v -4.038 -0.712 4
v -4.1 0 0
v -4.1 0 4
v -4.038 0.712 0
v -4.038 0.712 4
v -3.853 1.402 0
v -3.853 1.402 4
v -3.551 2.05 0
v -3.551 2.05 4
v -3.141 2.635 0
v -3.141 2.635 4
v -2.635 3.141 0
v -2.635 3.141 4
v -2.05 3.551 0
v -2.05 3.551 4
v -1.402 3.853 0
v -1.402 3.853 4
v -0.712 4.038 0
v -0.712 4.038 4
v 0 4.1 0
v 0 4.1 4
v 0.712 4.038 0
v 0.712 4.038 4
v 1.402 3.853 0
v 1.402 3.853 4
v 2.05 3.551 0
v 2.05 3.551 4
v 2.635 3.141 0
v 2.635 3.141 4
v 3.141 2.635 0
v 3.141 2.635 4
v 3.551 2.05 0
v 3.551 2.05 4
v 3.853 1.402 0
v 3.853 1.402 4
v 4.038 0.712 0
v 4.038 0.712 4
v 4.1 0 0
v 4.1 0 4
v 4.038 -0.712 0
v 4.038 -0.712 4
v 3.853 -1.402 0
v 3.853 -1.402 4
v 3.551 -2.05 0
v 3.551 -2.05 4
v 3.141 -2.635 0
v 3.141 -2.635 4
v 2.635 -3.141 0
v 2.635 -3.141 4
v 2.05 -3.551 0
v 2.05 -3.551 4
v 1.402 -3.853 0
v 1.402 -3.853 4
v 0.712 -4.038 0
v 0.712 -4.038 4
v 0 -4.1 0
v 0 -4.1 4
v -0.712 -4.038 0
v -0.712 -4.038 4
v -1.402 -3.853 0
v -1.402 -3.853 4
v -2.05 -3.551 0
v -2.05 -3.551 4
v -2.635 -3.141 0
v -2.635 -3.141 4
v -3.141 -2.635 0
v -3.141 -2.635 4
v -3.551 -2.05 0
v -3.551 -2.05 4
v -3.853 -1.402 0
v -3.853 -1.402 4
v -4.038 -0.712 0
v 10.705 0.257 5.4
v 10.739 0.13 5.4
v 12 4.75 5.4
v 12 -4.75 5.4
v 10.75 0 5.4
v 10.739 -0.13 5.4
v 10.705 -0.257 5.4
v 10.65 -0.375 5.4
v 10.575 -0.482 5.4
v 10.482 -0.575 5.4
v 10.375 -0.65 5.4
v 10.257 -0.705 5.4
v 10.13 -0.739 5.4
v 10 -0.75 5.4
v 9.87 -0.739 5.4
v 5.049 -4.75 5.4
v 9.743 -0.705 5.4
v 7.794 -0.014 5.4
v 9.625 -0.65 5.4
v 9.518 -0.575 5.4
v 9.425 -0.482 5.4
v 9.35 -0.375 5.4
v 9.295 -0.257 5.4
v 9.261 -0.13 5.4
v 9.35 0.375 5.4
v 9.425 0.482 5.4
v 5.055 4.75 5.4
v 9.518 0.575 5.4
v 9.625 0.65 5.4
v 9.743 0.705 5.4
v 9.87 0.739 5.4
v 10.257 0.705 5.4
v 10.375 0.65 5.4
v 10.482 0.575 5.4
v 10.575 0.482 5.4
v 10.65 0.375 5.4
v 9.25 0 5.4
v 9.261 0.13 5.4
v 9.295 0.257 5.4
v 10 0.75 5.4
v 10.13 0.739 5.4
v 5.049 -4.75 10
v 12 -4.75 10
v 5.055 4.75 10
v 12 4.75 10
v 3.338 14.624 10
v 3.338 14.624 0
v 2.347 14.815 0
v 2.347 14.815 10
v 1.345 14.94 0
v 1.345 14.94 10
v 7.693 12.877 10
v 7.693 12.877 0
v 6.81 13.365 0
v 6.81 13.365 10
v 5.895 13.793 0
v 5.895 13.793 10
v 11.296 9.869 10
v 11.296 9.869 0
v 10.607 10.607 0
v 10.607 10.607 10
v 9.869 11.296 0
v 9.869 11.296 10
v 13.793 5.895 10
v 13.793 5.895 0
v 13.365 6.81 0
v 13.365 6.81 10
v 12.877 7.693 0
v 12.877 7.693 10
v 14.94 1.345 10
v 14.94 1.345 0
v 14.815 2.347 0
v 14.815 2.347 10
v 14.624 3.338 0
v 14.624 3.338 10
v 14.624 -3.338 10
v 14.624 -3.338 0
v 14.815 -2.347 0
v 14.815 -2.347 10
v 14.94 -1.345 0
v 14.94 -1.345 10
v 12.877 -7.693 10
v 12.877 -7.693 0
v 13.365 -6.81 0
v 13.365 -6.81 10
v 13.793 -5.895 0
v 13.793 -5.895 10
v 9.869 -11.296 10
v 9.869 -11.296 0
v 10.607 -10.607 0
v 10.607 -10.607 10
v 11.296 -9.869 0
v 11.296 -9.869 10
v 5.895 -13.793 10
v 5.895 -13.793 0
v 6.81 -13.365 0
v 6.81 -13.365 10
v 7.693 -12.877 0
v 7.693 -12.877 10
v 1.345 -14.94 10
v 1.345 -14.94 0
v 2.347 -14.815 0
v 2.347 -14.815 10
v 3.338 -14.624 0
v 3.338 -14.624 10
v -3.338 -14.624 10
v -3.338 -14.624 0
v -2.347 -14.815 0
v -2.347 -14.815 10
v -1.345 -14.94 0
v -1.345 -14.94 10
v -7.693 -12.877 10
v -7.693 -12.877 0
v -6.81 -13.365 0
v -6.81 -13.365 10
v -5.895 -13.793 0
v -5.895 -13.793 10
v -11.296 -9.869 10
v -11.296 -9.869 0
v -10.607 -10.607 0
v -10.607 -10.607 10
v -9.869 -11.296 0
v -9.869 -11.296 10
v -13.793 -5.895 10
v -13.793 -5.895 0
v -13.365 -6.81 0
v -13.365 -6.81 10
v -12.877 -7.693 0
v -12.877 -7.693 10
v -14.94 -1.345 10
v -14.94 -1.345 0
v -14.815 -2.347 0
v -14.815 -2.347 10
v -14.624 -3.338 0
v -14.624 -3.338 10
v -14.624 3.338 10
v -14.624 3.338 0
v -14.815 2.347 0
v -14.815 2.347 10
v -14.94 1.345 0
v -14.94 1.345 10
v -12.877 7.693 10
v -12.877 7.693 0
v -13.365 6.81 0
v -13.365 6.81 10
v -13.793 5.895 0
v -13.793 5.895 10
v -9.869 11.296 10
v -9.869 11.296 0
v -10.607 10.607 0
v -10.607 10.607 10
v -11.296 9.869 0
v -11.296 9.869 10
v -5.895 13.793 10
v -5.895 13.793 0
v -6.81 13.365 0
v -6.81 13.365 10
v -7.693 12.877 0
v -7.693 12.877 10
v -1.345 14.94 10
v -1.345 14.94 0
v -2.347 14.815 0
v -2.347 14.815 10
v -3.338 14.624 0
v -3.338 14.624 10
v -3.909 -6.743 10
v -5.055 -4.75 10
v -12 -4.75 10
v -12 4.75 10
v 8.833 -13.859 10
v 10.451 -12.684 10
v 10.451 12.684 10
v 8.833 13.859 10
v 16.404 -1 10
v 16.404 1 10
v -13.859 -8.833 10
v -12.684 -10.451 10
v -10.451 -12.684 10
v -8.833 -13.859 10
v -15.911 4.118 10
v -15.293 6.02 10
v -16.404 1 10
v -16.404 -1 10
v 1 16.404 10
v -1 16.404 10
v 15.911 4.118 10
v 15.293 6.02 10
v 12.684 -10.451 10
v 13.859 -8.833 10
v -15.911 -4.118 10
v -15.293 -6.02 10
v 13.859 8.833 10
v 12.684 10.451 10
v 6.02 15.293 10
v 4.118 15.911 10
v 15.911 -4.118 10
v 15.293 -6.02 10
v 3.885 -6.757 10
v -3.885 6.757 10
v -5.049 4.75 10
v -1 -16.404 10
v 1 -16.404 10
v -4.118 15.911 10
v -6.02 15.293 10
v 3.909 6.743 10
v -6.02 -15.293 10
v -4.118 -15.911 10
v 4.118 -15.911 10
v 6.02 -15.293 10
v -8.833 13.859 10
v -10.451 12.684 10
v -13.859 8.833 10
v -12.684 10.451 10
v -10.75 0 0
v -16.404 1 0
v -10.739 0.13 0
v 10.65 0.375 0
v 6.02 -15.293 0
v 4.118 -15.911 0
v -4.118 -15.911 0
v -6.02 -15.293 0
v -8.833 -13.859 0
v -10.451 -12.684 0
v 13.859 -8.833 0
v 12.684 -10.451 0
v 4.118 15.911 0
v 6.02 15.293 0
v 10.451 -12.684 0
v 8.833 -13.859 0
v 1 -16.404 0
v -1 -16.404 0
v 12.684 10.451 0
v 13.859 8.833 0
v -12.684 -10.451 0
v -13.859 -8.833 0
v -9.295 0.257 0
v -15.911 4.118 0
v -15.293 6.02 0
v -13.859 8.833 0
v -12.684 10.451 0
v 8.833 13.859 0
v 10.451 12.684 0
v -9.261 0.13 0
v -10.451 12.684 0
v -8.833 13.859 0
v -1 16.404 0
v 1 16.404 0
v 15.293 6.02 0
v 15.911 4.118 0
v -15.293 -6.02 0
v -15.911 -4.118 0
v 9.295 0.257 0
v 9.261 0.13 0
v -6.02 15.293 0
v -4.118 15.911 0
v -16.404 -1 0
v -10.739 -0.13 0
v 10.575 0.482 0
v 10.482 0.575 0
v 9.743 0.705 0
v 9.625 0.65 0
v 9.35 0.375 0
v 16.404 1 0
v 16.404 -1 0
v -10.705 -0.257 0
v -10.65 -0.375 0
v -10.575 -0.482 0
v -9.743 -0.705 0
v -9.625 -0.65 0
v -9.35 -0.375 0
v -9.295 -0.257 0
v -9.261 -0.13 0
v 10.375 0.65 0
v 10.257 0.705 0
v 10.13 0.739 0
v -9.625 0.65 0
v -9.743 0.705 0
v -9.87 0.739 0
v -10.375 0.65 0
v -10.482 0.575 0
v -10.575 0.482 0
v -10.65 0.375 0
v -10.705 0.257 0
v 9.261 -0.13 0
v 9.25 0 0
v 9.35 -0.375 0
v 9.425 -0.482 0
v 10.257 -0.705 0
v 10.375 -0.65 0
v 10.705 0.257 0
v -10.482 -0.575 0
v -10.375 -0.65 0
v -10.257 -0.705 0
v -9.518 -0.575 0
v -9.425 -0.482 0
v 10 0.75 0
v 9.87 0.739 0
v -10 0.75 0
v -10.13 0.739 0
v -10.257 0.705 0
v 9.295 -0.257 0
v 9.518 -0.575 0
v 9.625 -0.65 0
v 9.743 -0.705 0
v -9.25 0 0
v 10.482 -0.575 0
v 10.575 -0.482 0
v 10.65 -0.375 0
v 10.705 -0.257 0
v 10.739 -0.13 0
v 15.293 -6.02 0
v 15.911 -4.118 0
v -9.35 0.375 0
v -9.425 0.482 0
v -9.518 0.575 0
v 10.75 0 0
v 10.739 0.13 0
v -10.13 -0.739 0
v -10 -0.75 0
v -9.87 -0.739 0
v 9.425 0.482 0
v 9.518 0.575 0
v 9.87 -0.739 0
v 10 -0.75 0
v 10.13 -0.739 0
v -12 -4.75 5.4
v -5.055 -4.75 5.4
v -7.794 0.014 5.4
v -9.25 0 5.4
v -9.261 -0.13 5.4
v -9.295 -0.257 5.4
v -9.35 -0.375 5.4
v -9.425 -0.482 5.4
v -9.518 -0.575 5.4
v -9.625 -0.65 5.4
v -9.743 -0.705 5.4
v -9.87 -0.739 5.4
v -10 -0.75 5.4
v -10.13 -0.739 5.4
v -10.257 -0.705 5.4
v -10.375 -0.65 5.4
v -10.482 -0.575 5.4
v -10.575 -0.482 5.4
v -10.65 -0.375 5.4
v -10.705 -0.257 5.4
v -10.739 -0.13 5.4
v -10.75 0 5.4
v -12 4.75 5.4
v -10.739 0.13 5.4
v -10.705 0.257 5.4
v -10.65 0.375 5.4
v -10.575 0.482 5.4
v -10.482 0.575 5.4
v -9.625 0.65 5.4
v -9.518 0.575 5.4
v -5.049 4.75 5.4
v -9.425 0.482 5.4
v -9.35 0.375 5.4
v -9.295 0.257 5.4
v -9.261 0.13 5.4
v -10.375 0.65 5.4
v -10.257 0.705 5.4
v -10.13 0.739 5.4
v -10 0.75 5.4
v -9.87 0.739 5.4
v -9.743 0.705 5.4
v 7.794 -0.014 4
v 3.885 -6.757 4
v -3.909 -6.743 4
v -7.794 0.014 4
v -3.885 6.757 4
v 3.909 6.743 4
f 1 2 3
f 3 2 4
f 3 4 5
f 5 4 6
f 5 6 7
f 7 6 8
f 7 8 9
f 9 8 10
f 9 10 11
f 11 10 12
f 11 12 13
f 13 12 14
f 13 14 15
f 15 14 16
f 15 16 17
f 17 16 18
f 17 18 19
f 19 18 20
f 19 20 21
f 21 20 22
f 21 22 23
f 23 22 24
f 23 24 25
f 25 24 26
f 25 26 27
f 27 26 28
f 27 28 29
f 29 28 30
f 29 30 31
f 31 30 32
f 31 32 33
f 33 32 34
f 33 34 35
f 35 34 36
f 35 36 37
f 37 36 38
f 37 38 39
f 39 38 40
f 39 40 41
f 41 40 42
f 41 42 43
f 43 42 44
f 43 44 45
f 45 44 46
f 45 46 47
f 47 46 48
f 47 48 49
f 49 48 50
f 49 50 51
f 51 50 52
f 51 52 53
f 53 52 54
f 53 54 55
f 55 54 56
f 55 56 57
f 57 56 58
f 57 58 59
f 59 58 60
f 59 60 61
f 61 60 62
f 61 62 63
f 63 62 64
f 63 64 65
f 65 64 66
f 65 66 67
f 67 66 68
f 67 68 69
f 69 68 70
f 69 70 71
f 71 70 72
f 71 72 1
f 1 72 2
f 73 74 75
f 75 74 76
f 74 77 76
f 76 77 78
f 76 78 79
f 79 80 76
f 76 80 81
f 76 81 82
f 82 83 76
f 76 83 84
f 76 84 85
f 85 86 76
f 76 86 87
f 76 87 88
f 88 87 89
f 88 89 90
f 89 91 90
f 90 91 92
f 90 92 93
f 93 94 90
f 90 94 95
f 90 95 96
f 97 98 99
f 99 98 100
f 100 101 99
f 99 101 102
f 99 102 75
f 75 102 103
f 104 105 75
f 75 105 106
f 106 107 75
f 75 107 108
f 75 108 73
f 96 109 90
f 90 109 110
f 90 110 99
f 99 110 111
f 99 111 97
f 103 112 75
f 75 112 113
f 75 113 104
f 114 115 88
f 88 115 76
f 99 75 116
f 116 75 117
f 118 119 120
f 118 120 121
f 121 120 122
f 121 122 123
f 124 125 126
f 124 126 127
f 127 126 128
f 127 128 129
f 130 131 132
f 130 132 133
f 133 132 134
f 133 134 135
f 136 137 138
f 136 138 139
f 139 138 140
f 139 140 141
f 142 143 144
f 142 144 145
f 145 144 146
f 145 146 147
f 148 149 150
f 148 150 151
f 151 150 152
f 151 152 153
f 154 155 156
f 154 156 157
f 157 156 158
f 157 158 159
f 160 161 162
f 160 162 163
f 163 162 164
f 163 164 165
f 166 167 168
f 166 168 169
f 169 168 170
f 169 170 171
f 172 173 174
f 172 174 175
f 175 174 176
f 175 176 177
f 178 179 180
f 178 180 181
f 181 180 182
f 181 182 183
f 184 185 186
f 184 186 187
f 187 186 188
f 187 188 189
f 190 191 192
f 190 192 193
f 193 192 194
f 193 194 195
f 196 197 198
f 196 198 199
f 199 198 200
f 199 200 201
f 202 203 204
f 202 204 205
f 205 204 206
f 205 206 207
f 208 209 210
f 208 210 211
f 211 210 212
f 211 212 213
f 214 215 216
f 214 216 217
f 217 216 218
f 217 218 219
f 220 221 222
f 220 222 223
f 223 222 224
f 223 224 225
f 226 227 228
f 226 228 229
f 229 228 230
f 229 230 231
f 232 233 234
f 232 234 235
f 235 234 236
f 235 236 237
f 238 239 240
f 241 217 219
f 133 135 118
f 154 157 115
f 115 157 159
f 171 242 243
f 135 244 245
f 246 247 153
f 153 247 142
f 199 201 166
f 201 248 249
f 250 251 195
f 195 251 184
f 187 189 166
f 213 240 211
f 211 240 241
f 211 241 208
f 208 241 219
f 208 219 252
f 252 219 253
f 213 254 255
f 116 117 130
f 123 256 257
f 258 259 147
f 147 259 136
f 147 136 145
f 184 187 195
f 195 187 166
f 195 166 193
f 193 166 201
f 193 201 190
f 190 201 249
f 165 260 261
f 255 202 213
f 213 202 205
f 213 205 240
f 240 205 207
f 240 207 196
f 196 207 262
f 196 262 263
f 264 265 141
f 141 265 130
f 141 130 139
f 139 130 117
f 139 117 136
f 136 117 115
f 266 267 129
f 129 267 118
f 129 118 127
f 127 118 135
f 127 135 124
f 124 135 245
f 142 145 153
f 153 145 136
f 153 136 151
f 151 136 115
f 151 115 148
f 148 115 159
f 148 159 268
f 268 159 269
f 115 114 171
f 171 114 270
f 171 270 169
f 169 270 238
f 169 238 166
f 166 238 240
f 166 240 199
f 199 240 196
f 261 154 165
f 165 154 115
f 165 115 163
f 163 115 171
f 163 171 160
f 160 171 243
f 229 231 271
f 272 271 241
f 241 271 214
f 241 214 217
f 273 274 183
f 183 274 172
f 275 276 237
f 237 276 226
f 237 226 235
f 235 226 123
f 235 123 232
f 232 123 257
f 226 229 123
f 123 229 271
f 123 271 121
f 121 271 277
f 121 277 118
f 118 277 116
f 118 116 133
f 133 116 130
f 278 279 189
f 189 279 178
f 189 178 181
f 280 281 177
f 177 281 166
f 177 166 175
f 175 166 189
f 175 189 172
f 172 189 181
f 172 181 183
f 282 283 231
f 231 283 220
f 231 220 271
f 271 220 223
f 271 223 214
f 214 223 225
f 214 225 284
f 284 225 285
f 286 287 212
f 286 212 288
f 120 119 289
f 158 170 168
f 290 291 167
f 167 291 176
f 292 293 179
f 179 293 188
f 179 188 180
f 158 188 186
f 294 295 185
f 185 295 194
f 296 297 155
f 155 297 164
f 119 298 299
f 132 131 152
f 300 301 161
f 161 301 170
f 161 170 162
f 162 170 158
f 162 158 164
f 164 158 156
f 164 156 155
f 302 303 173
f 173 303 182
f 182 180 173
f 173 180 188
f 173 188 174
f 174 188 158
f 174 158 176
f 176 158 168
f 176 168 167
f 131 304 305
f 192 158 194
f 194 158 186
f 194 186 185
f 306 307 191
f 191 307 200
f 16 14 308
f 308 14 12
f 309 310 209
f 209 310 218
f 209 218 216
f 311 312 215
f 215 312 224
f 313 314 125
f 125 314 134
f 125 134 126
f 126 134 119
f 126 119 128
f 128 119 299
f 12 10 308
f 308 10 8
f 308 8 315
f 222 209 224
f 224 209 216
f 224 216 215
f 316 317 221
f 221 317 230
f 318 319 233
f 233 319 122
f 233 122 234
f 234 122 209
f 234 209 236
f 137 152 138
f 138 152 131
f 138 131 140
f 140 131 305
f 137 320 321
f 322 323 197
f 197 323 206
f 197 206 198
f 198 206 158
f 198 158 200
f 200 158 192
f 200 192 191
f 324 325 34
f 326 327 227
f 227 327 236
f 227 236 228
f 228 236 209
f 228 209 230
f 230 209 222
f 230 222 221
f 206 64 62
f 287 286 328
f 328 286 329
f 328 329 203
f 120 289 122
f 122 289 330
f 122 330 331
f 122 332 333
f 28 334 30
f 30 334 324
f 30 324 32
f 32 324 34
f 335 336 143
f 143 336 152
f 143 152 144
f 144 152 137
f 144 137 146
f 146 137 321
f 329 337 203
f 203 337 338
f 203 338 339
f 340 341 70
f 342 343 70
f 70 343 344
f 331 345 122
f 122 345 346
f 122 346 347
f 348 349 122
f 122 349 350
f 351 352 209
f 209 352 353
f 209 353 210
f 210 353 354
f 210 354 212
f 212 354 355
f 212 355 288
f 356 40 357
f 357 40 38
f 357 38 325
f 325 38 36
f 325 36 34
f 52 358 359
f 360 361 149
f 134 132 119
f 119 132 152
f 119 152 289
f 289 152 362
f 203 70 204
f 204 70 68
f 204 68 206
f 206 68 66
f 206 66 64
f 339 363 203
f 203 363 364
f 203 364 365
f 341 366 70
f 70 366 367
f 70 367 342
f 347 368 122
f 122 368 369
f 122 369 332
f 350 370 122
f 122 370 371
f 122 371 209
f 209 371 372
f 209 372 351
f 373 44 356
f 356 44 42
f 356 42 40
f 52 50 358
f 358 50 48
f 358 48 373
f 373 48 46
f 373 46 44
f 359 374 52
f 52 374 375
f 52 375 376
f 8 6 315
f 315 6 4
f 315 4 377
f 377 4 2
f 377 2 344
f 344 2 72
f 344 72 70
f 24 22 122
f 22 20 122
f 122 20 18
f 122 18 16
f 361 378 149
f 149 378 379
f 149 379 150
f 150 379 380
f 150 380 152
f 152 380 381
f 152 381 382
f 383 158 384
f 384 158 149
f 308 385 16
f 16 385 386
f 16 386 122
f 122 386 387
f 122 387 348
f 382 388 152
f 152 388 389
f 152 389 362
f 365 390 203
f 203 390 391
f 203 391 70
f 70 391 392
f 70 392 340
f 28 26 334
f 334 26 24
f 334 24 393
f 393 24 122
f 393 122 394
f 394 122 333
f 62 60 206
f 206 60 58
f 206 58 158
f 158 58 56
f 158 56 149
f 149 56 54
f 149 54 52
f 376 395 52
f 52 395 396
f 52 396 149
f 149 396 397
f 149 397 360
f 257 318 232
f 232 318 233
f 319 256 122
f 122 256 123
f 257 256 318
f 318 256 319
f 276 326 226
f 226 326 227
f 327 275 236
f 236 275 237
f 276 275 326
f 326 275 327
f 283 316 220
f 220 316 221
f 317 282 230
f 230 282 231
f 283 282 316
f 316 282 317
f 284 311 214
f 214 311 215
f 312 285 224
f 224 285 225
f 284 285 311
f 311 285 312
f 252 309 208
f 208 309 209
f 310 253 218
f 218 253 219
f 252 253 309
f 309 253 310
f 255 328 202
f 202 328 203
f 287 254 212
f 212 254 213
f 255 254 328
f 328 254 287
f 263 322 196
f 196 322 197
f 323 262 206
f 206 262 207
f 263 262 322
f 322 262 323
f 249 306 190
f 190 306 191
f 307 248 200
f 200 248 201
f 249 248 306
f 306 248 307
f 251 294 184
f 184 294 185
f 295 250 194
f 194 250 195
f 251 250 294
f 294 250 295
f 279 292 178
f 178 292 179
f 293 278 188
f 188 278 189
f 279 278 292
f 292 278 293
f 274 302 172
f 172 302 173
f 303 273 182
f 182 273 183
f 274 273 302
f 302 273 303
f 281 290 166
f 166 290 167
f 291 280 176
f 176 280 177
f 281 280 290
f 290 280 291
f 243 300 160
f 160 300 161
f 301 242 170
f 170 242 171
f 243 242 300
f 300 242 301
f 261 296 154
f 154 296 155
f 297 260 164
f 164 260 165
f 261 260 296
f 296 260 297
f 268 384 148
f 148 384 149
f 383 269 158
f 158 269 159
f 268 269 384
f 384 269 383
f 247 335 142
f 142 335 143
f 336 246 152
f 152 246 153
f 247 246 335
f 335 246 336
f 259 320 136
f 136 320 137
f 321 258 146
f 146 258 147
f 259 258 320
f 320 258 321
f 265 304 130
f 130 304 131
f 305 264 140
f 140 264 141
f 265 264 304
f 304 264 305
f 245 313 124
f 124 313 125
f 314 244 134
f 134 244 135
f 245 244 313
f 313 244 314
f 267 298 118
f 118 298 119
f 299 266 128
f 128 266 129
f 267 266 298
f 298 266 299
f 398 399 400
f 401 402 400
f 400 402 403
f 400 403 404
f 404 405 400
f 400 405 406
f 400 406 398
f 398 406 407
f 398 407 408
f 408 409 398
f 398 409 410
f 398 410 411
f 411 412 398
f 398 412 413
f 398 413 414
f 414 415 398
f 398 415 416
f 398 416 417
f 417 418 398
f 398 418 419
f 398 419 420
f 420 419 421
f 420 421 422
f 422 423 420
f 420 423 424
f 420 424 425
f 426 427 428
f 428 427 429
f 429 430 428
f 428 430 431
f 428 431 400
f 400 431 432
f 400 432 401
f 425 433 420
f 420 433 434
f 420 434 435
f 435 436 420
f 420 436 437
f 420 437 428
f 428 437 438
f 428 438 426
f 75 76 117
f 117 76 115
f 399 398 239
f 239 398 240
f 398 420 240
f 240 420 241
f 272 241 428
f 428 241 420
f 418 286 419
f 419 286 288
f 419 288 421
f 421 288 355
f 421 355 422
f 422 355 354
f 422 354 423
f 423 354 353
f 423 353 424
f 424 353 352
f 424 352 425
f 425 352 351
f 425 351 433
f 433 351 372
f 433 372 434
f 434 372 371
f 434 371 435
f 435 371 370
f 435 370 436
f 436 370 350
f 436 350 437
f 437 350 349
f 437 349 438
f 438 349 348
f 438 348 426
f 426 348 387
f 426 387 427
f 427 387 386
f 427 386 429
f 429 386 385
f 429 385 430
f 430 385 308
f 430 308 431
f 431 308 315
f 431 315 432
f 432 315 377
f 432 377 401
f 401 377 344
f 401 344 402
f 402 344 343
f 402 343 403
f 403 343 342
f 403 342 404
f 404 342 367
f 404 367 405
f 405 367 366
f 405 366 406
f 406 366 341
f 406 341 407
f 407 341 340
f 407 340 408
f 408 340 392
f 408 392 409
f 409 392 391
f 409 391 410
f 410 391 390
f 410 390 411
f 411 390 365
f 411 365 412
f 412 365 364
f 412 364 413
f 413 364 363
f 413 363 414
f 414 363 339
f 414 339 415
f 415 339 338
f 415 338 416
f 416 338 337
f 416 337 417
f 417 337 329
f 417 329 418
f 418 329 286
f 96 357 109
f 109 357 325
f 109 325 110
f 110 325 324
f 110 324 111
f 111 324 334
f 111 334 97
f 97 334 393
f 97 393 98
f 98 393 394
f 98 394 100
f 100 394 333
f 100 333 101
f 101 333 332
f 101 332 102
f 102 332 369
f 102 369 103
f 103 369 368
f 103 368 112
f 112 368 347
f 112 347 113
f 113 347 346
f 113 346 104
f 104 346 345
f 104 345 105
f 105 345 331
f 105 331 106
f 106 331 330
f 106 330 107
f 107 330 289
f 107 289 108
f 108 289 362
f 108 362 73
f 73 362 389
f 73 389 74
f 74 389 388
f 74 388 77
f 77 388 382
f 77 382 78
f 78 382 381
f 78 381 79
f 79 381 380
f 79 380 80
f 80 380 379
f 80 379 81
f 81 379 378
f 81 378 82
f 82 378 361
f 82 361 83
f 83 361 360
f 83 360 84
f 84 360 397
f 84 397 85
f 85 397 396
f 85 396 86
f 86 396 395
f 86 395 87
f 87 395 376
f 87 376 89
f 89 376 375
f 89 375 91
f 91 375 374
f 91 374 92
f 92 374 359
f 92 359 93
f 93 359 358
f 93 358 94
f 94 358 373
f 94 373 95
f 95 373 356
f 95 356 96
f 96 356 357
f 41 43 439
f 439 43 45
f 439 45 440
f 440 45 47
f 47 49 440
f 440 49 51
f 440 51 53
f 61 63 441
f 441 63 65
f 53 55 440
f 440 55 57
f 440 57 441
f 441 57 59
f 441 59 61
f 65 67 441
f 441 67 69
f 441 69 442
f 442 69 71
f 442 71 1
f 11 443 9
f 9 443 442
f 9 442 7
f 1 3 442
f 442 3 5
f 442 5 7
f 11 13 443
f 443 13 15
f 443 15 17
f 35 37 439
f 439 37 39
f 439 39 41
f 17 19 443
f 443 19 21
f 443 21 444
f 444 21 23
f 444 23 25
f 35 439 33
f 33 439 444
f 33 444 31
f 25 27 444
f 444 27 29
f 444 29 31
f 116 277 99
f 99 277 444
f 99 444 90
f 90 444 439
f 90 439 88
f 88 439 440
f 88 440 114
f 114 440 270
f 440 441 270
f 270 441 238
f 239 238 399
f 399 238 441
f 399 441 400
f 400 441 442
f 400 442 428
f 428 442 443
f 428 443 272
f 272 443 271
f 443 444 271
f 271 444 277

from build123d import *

# Parameters (mm, degrees)
SKETCH1_R                      = 15
EXTRUDE1_DEPTH                 = 10
EXTRUDE3_DEPTH                 = 10
CIRPATTERN1_COUNT              = 20
F_8_2_8_2_DIAMETER_HOLE1_D     = 8.2
F_8_2_8_2_DIAMETER_HOLE1_DEPTH = 10
F_8_2_8_2_DIAMETER_HOLE1_TIP   = 2.463528538
SKETCH4_W                      = 24
SKETCH4_H                      = 9.5
EXTRUDE4_DEPTH                 = 4.6
F_1_5_1_5_DIAMETER_HOLE1_D     = 1.5
F_1_5_1_5_DIAMETER_HOLE1_DEPTH = 150
F_1_5_1_5_DIAMETER_HOLE1_TIP   = 0.450645464
EXTRUDE5_DEPTH                 = 6


with BuildPart() as part:
    # Sketch1 → Extrude1 (new body)
    with BuildSketch(Plane.XY):
        Circle(SKETCH1_R)
    extrude(amount=EXTRUDE1_DEPTH)

    # Sketch2 → Extrude3 (add)
    with BuildSketch(Plane.XY.offset(10)):
        Polygon((1.4, 14.704480908), (1, 16.404480908), (-1, 16.404480908), (-1.4, 14.704480908), align=None)
    extrude3 = extrude(amount=-EXTRUDE3_DEPTH)

    # CirPattern1: Extrude3 ×20 about axis
    cirpattern1_axis = Axis((0, 0, 0), (0, 0, 1))
    for i in range(1, CIRPATTERN1_COUNT):
        add(extrude3.rotate(cirpattern1_axis, i * 360 / CIRPATTERN1_COUNT))

    # Ø8.2 (8.2) Diameter Hole1
    with Locations(Plane(origin=(0, 0, 0), x_dir=(-1, 0, 0), z_dir=(0, 0, -1))):
        with Locations((0, 0)):
            Hole(F_8_2_8_2_DIAMETER_HOLE1_D / 2, depth=F_8_2_8_2_DIAMETER_HOLE1_DEPTH)
            with Locations((0, 0, -(F_8_2_8_2_DIAMETER_HOLE1_DEPTH + F_8_2_8_2_DIAMETER_HOLE1_TIP / 2))):  # 118° drill point
                Cone(0, F_8_2_8_2_DIAMETER_HOLE1_D / 2, F_8_2_8_2_DIAMETER_HOLE1_TIP, mode=Mode.SUBTRACT)

    # Sketch4 → Extrude4 (cut)
    with BuildSketch(Plane.XY.offset(10)):
        Rectangle(SKETCH4_W, SKETCH4_H)
    extrude(amount=-EXTRUDE4_DEPTH, mode=Mode.SUBTRACT)

    # Ø1.5 (1.5) Diameter Hole1
    with Locations(Plane(origin=(10, 0, 0), x_dir=(-1, 0, 0), z_dir=(0, 0, -1))):
        with Locations((0, 0), (20, 0)):
            Hole(F_1_5_1_5_DIAMETER_HOLE1_D / 2, depth=F_1_5_1_5_DIAMETER_HOLE1_DEPTH)
            with Locations((0, 0, -(F_1_5_1_5_DIAMETER_HOLE1_DEPTH + F_1_5_1_5_DIAMETER_HOLE1_TIP / 2))):  # 118° drill point
                Cone(0, F_1_5_1_5_DIAMETER_HOLE1_D / 2, F_1_5_1_5_DIAMETER_HOLE1_TIP, mode=Mode.SUBTRACT)

    # Sketch6 → Extrude5 (cut)
    with BuildSketch(Plane.XY.offset(10)):
        Polygon((3.908986866, 6.743131445), (-3.885229699, 6.756847651), (-7.794216565, 0.013716207), (-3.908986866, -6.743131445), (3.885229699, -6.756847651), (7.794216565, -0.013716207), align=None)
    extrude(amount=-EXTRUDE5_DEPTH, mode=Mode.SUBTRACT)


solid = part.part
